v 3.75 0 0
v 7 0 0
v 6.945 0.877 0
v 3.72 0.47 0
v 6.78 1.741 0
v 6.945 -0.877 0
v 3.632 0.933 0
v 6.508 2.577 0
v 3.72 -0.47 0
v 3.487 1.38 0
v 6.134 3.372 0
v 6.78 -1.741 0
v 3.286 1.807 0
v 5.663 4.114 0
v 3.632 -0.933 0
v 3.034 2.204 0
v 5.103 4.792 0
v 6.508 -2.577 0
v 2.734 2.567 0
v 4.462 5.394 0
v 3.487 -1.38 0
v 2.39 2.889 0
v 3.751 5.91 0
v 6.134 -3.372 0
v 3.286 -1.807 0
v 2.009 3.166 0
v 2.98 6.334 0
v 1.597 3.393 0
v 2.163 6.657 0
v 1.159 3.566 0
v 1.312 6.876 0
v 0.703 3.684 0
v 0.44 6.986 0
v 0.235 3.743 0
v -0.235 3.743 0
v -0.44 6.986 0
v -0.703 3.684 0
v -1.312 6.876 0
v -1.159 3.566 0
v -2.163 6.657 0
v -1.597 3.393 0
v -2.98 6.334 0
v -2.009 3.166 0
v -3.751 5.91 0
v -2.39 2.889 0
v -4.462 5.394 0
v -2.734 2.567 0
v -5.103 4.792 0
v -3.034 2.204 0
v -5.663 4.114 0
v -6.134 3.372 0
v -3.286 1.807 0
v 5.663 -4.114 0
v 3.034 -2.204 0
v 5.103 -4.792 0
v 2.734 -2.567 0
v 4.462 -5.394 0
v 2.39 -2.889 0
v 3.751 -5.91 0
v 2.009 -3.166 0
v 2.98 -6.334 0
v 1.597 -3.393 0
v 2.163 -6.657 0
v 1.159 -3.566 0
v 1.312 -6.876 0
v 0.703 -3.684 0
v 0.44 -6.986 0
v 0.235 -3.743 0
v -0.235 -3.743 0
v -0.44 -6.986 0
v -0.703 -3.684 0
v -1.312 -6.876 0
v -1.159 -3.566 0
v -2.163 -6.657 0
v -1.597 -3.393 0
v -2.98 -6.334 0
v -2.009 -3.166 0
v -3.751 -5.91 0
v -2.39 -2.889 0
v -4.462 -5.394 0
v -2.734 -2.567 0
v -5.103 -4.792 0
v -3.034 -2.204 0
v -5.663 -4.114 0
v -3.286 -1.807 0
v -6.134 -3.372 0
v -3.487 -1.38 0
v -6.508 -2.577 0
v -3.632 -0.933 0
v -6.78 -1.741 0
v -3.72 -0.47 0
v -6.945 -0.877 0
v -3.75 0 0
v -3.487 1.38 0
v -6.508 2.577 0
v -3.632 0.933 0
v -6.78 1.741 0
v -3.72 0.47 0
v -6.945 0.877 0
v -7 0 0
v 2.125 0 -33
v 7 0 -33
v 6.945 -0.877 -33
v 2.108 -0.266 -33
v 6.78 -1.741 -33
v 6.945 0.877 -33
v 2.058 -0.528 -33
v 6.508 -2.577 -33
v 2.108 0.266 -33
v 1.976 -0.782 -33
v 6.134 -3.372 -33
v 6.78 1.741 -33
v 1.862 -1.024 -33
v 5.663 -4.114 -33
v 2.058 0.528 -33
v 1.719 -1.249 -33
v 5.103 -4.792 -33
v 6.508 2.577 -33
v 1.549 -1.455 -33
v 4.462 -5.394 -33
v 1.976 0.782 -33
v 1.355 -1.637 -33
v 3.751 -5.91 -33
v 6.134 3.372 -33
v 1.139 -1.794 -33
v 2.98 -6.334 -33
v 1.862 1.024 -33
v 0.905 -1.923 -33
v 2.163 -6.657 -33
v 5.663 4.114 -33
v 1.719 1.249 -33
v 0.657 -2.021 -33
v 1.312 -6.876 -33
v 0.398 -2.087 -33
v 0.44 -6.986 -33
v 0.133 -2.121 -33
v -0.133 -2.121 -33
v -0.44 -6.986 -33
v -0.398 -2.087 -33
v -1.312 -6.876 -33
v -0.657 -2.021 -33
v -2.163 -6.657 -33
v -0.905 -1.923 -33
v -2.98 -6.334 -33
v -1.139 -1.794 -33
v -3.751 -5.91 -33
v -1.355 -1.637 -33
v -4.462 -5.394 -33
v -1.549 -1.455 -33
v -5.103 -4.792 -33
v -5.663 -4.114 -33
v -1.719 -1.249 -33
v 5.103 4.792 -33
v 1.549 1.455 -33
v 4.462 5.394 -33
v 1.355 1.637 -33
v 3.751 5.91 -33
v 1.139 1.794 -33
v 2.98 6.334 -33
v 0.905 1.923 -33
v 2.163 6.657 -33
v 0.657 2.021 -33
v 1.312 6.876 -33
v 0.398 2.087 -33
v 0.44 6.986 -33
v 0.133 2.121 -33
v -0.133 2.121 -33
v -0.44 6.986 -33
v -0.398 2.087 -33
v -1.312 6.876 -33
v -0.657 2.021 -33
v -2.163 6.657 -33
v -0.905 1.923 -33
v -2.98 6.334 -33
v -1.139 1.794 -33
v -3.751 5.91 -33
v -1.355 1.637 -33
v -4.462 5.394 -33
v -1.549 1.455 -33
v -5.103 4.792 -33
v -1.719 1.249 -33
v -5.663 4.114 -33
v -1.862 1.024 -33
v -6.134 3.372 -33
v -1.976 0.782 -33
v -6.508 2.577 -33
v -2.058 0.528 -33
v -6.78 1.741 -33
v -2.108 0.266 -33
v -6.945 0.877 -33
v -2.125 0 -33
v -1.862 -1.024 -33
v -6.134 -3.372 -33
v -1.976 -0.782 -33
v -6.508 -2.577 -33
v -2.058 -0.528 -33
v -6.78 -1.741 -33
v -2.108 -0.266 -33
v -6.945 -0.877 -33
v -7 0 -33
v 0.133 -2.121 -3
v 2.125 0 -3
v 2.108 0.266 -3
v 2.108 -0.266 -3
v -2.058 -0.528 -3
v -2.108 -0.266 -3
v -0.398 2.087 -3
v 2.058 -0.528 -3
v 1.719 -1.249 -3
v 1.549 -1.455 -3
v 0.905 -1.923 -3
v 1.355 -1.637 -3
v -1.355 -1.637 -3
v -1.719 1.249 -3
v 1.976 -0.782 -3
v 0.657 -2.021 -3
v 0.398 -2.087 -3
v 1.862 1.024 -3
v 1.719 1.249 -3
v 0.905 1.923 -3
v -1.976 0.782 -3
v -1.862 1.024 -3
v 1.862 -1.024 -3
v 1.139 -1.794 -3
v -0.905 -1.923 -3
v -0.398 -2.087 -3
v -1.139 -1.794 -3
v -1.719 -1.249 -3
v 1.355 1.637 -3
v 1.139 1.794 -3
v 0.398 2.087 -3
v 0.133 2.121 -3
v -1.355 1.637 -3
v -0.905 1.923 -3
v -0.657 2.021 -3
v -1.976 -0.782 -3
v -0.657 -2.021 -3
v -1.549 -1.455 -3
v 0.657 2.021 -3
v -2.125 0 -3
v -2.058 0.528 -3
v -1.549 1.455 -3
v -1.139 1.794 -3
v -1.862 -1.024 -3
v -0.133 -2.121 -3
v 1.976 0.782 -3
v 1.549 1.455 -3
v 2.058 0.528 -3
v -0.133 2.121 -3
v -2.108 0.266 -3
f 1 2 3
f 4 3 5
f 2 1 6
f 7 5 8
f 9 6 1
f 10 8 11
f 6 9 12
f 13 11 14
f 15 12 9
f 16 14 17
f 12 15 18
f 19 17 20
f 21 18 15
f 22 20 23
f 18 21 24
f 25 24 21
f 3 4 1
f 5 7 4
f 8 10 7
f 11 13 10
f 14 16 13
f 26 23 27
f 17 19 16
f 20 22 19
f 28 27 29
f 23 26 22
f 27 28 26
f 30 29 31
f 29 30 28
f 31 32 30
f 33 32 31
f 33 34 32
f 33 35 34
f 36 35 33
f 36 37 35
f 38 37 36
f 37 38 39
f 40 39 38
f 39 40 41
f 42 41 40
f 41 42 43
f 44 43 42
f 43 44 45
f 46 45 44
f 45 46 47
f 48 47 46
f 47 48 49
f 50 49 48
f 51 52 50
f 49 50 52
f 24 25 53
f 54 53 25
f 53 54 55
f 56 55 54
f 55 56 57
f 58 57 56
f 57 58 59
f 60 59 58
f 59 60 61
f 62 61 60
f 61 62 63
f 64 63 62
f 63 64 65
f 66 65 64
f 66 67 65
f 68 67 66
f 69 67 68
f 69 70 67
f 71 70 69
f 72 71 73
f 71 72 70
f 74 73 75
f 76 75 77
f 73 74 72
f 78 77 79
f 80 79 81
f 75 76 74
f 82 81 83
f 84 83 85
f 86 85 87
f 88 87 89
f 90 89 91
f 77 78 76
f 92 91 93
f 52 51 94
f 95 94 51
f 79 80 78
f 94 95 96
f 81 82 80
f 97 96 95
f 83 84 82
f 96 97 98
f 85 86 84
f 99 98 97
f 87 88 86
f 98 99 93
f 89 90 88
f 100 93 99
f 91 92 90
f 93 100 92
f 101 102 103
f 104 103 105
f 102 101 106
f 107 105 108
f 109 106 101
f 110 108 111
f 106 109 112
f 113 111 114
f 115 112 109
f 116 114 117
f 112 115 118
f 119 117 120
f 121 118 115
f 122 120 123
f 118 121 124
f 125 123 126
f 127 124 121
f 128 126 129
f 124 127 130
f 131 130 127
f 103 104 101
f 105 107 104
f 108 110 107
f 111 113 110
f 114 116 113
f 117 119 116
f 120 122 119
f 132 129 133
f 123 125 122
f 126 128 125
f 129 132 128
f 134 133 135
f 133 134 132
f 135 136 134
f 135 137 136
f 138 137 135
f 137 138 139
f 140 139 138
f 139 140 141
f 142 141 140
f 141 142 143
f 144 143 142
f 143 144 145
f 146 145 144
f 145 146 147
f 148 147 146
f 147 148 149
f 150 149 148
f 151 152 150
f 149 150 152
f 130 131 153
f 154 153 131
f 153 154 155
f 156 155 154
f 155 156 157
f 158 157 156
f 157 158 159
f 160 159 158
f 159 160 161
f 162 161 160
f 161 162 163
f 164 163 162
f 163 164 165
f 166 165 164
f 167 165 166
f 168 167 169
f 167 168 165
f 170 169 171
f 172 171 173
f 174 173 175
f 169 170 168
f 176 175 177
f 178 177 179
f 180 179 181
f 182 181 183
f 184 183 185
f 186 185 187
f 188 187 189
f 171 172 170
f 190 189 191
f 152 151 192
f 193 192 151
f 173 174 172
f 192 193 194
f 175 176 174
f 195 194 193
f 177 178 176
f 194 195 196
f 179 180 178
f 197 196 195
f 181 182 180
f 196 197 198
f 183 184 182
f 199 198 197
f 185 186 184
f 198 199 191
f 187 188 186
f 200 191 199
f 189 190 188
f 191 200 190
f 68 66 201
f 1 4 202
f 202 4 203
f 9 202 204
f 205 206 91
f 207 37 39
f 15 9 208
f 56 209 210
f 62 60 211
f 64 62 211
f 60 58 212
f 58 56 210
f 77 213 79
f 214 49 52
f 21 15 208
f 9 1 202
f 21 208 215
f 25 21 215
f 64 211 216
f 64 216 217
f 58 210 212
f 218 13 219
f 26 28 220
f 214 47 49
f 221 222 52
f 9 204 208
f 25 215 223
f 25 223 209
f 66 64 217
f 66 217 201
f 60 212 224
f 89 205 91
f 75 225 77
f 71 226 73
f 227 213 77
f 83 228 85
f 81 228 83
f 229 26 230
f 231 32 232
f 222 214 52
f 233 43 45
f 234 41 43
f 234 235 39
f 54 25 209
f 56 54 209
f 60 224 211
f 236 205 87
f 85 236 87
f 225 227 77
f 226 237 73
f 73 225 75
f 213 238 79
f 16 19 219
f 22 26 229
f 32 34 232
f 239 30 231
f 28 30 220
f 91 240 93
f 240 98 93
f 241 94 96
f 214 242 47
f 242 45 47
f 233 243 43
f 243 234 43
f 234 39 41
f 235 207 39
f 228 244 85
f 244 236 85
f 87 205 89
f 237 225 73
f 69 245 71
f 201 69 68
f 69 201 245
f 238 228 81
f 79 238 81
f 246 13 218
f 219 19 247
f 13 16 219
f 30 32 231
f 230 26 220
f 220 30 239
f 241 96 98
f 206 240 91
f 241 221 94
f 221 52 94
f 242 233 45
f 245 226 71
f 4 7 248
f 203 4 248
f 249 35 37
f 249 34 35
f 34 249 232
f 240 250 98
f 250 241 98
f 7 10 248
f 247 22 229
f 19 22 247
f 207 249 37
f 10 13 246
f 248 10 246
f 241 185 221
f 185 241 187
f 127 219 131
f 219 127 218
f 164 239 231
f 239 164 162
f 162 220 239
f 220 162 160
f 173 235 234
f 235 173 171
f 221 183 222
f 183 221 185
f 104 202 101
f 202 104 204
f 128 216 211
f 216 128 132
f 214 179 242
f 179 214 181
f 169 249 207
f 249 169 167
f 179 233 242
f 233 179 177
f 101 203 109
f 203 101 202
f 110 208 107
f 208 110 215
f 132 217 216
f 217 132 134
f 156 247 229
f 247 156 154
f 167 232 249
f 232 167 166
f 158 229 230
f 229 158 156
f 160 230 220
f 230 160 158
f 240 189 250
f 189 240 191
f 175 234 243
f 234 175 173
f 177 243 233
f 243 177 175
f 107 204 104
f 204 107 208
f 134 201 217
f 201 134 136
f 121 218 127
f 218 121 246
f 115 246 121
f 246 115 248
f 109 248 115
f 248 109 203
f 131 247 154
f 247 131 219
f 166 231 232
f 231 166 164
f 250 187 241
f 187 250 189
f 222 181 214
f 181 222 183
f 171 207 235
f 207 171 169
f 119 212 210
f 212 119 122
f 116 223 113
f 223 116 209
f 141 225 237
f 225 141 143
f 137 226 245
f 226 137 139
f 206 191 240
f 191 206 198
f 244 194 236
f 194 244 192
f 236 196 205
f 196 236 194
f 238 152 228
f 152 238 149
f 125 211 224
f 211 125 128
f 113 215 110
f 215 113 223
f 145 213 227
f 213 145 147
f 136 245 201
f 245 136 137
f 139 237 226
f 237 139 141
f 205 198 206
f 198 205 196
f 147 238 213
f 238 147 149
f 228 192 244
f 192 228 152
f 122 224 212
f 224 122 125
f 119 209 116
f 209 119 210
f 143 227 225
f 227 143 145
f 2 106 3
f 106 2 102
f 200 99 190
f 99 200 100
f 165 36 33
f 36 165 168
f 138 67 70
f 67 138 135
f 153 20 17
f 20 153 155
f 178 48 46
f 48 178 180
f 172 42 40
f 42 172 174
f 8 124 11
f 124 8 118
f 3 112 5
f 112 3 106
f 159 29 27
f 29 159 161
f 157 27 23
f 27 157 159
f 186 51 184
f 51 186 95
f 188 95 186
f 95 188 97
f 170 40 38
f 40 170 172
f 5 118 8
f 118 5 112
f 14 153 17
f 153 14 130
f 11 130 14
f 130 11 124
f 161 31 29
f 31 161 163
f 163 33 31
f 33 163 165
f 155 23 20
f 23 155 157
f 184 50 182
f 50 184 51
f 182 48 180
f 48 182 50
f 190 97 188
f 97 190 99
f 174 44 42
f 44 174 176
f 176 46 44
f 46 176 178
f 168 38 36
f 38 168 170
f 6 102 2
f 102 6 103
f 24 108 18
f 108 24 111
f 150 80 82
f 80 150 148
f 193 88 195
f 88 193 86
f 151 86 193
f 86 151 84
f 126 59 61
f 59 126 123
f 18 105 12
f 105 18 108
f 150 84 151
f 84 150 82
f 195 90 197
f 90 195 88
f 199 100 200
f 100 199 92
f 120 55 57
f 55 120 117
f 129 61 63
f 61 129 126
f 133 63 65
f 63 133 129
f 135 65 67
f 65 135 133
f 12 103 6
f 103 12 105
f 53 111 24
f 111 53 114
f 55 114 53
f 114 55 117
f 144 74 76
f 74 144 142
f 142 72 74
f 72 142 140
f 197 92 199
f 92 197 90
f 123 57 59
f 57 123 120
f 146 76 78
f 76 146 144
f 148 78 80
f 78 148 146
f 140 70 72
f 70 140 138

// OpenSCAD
$fn = 50;


difference() {
	union() {
		translate(v = [0, 0, -33.0000000000]) {
			cylinder(h = 33, r = 7.0000000000);
		}
		cylinder(h = 0, r = 16.0000000000);
	}
	union() {
		translate(v = [0, 0, 0]) {
			rotate(a = [0, 0, 0]) {
				difference() {
					union() {
						#translate(v = [0, 0, -33.0000000000]) {
							cylinder(h = 33, r = 2.0000000000);
						}
						#translate(v = [0, 0, -3]) {
							cylinder(h = 3, r1 = 2.1250000000, r2 = 3.7500000000);
						}
						#translate(v = [0, 0, -33.0000000000]) {
							cylinder(h = 33, r = 2.1250000000);
						}
						#translate(v = [0, 0, -33.0000000000]) {
							cylinder(h = 33, r = 2.0000000000);
						}
					}
					union();
				}
			}
		}
	}
}
